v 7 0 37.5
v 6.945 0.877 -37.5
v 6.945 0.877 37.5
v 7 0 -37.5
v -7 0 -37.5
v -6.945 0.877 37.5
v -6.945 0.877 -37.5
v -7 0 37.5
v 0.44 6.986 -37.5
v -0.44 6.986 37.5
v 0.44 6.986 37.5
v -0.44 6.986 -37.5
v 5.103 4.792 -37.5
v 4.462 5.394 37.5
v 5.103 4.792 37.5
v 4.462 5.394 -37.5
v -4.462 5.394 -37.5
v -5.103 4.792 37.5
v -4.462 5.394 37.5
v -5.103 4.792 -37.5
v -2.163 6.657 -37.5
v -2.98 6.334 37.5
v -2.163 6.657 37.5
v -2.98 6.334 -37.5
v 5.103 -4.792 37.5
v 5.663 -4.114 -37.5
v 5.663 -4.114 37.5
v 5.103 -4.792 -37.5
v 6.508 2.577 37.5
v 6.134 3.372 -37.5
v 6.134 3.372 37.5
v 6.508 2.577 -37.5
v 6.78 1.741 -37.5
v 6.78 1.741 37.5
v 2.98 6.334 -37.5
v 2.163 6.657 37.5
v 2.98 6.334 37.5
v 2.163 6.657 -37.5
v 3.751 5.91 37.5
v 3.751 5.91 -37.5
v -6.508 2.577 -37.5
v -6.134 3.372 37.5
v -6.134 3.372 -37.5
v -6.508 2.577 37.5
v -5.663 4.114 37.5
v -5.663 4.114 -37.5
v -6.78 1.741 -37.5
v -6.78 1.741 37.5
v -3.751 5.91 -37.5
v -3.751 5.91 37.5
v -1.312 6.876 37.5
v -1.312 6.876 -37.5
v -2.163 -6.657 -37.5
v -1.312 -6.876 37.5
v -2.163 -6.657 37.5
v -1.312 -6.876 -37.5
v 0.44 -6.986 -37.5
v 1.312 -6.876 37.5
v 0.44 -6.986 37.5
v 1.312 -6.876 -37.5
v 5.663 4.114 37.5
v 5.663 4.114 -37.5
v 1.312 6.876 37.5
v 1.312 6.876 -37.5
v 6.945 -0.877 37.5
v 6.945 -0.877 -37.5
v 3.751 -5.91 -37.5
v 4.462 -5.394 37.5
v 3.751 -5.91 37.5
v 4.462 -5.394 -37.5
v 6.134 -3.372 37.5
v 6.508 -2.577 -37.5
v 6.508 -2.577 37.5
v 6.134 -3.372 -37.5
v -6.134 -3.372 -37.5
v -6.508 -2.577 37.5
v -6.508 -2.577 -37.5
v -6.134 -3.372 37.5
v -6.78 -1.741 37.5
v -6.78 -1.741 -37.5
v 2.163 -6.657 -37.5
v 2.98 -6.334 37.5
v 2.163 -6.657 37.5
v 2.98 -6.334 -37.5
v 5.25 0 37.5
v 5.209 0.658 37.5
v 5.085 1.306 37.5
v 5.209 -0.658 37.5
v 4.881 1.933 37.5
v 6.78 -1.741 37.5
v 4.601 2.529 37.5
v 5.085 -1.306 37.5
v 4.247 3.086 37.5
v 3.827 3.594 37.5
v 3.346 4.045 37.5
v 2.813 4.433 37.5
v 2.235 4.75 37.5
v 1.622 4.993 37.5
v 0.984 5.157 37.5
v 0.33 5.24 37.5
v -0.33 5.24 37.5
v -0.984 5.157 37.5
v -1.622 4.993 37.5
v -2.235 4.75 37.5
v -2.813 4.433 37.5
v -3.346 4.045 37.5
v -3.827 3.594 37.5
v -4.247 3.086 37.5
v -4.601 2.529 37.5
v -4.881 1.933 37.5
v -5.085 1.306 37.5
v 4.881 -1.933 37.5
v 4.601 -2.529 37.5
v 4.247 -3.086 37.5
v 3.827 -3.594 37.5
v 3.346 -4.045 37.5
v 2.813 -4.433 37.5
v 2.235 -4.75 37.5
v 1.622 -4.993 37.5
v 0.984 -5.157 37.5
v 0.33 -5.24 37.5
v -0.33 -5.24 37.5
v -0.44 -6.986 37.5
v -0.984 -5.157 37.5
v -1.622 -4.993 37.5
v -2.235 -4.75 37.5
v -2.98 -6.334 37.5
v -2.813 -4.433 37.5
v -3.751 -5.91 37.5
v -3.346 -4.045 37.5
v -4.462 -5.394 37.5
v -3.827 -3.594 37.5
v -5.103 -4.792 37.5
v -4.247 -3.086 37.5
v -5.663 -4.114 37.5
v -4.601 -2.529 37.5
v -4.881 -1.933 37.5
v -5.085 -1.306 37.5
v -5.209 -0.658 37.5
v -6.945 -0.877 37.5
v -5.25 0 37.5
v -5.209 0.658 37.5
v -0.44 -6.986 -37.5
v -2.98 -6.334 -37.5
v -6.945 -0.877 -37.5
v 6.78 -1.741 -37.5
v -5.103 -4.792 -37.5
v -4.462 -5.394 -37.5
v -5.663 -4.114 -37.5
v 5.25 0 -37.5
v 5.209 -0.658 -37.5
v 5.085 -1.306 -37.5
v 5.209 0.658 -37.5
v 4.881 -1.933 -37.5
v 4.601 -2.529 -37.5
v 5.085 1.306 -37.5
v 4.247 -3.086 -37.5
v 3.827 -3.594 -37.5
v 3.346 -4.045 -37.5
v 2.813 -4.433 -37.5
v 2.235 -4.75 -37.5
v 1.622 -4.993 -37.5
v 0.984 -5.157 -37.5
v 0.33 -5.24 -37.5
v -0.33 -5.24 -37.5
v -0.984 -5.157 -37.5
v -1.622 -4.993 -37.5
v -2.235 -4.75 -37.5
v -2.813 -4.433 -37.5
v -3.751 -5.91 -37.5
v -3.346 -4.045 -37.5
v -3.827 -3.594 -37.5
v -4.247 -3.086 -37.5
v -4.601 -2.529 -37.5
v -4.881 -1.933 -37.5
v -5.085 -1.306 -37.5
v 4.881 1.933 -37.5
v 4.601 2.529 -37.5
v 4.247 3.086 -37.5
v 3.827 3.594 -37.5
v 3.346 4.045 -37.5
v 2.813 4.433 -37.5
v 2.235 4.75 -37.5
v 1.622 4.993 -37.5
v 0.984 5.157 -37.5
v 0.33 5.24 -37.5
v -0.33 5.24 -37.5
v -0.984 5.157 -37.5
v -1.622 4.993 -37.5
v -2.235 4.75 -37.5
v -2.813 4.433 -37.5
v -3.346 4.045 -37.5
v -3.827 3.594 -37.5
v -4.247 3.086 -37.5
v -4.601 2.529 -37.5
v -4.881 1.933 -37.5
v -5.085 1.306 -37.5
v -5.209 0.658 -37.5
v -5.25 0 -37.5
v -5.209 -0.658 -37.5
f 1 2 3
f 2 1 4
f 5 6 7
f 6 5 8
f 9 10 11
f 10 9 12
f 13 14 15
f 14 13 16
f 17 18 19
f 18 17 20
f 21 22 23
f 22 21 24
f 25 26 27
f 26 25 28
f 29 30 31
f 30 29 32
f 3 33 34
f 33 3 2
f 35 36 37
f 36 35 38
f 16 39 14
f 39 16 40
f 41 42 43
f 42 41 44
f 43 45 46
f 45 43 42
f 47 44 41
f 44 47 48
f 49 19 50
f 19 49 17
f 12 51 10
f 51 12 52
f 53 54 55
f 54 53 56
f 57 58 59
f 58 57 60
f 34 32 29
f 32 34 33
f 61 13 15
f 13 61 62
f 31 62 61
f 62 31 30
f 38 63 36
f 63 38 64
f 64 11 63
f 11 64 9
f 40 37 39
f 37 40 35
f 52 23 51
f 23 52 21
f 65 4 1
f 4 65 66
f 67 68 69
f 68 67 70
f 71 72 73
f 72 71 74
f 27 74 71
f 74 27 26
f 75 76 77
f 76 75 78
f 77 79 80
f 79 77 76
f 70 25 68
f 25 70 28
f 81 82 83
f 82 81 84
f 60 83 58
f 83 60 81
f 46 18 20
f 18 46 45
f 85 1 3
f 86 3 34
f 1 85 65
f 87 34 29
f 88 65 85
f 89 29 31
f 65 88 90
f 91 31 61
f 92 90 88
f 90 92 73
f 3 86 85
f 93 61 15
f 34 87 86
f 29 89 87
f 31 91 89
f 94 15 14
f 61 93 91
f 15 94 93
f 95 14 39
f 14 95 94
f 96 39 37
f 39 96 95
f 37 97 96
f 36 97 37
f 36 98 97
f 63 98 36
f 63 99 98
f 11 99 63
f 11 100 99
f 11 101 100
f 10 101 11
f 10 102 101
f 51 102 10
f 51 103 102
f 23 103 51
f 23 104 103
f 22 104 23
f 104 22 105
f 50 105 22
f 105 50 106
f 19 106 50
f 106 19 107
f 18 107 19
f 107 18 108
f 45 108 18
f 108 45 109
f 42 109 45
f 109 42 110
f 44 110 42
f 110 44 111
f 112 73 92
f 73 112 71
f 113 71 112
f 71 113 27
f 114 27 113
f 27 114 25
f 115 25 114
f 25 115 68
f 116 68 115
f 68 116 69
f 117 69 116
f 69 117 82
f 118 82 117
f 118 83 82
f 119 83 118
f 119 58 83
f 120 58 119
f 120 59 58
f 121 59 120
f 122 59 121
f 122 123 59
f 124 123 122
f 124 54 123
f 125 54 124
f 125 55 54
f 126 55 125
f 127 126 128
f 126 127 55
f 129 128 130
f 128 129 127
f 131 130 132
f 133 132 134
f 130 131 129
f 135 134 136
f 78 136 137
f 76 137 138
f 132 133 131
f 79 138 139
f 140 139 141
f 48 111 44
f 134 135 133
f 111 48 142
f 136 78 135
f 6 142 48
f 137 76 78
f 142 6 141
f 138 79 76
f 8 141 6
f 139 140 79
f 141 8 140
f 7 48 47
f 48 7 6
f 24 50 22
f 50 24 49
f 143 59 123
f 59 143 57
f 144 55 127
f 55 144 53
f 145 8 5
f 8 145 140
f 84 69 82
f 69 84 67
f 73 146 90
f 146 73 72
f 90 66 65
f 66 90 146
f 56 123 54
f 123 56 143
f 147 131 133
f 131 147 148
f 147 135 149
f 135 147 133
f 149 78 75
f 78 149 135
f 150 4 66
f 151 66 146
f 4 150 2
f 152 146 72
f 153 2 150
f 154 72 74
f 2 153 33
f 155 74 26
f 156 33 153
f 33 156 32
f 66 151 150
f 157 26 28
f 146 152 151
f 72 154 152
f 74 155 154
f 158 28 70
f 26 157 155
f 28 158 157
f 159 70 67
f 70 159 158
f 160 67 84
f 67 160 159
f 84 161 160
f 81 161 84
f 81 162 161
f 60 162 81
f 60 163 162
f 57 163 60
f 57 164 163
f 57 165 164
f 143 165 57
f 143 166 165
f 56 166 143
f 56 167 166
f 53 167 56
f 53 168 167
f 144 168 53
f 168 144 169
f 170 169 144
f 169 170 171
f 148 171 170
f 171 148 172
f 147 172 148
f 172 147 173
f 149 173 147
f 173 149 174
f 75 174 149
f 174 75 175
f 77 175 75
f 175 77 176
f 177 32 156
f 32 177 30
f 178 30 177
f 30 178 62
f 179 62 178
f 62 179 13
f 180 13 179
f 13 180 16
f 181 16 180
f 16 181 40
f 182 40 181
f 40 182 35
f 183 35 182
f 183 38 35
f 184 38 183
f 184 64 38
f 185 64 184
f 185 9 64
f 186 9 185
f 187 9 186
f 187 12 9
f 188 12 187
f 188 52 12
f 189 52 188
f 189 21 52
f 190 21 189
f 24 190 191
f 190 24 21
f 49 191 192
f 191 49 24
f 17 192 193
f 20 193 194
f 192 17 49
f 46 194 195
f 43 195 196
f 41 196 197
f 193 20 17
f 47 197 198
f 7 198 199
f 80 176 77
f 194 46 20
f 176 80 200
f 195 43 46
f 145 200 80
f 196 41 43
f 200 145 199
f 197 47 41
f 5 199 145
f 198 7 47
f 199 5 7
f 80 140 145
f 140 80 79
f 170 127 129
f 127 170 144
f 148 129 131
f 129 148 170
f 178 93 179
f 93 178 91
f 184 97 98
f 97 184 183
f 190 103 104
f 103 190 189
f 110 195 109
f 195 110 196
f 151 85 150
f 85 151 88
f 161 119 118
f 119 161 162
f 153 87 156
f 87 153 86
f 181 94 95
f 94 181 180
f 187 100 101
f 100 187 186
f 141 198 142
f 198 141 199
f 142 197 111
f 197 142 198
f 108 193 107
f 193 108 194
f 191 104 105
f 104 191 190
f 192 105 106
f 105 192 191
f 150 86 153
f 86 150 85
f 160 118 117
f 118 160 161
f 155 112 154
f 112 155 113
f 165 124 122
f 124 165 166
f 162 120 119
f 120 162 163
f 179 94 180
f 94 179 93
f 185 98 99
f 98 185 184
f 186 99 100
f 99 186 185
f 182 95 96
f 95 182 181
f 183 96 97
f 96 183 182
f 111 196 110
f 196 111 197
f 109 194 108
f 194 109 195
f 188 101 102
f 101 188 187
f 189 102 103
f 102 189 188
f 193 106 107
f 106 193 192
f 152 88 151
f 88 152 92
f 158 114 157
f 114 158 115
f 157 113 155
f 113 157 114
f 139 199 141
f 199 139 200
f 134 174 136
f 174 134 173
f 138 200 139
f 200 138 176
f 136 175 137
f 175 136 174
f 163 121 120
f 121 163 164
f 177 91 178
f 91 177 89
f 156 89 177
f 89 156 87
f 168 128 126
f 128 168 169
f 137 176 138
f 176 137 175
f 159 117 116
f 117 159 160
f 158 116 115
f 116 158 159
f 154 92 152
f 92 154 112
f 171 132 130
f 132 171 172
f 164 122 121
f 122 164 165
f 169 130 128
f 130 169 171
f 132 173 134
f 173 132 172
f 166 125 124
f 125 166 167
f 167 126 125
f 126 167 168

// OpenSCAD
$fn = 50;


difference() {
	union() {
		translate(v = [0, 0, -37.5000000000]) {
			cylinder(h = 75, r = 7.0000000000);
		}
	}
	union() {
		translate(v = [0, 0, -100.0000000000]) {
			cylinder(h = 200, r = 5.2500000000);
		}
	}
}
